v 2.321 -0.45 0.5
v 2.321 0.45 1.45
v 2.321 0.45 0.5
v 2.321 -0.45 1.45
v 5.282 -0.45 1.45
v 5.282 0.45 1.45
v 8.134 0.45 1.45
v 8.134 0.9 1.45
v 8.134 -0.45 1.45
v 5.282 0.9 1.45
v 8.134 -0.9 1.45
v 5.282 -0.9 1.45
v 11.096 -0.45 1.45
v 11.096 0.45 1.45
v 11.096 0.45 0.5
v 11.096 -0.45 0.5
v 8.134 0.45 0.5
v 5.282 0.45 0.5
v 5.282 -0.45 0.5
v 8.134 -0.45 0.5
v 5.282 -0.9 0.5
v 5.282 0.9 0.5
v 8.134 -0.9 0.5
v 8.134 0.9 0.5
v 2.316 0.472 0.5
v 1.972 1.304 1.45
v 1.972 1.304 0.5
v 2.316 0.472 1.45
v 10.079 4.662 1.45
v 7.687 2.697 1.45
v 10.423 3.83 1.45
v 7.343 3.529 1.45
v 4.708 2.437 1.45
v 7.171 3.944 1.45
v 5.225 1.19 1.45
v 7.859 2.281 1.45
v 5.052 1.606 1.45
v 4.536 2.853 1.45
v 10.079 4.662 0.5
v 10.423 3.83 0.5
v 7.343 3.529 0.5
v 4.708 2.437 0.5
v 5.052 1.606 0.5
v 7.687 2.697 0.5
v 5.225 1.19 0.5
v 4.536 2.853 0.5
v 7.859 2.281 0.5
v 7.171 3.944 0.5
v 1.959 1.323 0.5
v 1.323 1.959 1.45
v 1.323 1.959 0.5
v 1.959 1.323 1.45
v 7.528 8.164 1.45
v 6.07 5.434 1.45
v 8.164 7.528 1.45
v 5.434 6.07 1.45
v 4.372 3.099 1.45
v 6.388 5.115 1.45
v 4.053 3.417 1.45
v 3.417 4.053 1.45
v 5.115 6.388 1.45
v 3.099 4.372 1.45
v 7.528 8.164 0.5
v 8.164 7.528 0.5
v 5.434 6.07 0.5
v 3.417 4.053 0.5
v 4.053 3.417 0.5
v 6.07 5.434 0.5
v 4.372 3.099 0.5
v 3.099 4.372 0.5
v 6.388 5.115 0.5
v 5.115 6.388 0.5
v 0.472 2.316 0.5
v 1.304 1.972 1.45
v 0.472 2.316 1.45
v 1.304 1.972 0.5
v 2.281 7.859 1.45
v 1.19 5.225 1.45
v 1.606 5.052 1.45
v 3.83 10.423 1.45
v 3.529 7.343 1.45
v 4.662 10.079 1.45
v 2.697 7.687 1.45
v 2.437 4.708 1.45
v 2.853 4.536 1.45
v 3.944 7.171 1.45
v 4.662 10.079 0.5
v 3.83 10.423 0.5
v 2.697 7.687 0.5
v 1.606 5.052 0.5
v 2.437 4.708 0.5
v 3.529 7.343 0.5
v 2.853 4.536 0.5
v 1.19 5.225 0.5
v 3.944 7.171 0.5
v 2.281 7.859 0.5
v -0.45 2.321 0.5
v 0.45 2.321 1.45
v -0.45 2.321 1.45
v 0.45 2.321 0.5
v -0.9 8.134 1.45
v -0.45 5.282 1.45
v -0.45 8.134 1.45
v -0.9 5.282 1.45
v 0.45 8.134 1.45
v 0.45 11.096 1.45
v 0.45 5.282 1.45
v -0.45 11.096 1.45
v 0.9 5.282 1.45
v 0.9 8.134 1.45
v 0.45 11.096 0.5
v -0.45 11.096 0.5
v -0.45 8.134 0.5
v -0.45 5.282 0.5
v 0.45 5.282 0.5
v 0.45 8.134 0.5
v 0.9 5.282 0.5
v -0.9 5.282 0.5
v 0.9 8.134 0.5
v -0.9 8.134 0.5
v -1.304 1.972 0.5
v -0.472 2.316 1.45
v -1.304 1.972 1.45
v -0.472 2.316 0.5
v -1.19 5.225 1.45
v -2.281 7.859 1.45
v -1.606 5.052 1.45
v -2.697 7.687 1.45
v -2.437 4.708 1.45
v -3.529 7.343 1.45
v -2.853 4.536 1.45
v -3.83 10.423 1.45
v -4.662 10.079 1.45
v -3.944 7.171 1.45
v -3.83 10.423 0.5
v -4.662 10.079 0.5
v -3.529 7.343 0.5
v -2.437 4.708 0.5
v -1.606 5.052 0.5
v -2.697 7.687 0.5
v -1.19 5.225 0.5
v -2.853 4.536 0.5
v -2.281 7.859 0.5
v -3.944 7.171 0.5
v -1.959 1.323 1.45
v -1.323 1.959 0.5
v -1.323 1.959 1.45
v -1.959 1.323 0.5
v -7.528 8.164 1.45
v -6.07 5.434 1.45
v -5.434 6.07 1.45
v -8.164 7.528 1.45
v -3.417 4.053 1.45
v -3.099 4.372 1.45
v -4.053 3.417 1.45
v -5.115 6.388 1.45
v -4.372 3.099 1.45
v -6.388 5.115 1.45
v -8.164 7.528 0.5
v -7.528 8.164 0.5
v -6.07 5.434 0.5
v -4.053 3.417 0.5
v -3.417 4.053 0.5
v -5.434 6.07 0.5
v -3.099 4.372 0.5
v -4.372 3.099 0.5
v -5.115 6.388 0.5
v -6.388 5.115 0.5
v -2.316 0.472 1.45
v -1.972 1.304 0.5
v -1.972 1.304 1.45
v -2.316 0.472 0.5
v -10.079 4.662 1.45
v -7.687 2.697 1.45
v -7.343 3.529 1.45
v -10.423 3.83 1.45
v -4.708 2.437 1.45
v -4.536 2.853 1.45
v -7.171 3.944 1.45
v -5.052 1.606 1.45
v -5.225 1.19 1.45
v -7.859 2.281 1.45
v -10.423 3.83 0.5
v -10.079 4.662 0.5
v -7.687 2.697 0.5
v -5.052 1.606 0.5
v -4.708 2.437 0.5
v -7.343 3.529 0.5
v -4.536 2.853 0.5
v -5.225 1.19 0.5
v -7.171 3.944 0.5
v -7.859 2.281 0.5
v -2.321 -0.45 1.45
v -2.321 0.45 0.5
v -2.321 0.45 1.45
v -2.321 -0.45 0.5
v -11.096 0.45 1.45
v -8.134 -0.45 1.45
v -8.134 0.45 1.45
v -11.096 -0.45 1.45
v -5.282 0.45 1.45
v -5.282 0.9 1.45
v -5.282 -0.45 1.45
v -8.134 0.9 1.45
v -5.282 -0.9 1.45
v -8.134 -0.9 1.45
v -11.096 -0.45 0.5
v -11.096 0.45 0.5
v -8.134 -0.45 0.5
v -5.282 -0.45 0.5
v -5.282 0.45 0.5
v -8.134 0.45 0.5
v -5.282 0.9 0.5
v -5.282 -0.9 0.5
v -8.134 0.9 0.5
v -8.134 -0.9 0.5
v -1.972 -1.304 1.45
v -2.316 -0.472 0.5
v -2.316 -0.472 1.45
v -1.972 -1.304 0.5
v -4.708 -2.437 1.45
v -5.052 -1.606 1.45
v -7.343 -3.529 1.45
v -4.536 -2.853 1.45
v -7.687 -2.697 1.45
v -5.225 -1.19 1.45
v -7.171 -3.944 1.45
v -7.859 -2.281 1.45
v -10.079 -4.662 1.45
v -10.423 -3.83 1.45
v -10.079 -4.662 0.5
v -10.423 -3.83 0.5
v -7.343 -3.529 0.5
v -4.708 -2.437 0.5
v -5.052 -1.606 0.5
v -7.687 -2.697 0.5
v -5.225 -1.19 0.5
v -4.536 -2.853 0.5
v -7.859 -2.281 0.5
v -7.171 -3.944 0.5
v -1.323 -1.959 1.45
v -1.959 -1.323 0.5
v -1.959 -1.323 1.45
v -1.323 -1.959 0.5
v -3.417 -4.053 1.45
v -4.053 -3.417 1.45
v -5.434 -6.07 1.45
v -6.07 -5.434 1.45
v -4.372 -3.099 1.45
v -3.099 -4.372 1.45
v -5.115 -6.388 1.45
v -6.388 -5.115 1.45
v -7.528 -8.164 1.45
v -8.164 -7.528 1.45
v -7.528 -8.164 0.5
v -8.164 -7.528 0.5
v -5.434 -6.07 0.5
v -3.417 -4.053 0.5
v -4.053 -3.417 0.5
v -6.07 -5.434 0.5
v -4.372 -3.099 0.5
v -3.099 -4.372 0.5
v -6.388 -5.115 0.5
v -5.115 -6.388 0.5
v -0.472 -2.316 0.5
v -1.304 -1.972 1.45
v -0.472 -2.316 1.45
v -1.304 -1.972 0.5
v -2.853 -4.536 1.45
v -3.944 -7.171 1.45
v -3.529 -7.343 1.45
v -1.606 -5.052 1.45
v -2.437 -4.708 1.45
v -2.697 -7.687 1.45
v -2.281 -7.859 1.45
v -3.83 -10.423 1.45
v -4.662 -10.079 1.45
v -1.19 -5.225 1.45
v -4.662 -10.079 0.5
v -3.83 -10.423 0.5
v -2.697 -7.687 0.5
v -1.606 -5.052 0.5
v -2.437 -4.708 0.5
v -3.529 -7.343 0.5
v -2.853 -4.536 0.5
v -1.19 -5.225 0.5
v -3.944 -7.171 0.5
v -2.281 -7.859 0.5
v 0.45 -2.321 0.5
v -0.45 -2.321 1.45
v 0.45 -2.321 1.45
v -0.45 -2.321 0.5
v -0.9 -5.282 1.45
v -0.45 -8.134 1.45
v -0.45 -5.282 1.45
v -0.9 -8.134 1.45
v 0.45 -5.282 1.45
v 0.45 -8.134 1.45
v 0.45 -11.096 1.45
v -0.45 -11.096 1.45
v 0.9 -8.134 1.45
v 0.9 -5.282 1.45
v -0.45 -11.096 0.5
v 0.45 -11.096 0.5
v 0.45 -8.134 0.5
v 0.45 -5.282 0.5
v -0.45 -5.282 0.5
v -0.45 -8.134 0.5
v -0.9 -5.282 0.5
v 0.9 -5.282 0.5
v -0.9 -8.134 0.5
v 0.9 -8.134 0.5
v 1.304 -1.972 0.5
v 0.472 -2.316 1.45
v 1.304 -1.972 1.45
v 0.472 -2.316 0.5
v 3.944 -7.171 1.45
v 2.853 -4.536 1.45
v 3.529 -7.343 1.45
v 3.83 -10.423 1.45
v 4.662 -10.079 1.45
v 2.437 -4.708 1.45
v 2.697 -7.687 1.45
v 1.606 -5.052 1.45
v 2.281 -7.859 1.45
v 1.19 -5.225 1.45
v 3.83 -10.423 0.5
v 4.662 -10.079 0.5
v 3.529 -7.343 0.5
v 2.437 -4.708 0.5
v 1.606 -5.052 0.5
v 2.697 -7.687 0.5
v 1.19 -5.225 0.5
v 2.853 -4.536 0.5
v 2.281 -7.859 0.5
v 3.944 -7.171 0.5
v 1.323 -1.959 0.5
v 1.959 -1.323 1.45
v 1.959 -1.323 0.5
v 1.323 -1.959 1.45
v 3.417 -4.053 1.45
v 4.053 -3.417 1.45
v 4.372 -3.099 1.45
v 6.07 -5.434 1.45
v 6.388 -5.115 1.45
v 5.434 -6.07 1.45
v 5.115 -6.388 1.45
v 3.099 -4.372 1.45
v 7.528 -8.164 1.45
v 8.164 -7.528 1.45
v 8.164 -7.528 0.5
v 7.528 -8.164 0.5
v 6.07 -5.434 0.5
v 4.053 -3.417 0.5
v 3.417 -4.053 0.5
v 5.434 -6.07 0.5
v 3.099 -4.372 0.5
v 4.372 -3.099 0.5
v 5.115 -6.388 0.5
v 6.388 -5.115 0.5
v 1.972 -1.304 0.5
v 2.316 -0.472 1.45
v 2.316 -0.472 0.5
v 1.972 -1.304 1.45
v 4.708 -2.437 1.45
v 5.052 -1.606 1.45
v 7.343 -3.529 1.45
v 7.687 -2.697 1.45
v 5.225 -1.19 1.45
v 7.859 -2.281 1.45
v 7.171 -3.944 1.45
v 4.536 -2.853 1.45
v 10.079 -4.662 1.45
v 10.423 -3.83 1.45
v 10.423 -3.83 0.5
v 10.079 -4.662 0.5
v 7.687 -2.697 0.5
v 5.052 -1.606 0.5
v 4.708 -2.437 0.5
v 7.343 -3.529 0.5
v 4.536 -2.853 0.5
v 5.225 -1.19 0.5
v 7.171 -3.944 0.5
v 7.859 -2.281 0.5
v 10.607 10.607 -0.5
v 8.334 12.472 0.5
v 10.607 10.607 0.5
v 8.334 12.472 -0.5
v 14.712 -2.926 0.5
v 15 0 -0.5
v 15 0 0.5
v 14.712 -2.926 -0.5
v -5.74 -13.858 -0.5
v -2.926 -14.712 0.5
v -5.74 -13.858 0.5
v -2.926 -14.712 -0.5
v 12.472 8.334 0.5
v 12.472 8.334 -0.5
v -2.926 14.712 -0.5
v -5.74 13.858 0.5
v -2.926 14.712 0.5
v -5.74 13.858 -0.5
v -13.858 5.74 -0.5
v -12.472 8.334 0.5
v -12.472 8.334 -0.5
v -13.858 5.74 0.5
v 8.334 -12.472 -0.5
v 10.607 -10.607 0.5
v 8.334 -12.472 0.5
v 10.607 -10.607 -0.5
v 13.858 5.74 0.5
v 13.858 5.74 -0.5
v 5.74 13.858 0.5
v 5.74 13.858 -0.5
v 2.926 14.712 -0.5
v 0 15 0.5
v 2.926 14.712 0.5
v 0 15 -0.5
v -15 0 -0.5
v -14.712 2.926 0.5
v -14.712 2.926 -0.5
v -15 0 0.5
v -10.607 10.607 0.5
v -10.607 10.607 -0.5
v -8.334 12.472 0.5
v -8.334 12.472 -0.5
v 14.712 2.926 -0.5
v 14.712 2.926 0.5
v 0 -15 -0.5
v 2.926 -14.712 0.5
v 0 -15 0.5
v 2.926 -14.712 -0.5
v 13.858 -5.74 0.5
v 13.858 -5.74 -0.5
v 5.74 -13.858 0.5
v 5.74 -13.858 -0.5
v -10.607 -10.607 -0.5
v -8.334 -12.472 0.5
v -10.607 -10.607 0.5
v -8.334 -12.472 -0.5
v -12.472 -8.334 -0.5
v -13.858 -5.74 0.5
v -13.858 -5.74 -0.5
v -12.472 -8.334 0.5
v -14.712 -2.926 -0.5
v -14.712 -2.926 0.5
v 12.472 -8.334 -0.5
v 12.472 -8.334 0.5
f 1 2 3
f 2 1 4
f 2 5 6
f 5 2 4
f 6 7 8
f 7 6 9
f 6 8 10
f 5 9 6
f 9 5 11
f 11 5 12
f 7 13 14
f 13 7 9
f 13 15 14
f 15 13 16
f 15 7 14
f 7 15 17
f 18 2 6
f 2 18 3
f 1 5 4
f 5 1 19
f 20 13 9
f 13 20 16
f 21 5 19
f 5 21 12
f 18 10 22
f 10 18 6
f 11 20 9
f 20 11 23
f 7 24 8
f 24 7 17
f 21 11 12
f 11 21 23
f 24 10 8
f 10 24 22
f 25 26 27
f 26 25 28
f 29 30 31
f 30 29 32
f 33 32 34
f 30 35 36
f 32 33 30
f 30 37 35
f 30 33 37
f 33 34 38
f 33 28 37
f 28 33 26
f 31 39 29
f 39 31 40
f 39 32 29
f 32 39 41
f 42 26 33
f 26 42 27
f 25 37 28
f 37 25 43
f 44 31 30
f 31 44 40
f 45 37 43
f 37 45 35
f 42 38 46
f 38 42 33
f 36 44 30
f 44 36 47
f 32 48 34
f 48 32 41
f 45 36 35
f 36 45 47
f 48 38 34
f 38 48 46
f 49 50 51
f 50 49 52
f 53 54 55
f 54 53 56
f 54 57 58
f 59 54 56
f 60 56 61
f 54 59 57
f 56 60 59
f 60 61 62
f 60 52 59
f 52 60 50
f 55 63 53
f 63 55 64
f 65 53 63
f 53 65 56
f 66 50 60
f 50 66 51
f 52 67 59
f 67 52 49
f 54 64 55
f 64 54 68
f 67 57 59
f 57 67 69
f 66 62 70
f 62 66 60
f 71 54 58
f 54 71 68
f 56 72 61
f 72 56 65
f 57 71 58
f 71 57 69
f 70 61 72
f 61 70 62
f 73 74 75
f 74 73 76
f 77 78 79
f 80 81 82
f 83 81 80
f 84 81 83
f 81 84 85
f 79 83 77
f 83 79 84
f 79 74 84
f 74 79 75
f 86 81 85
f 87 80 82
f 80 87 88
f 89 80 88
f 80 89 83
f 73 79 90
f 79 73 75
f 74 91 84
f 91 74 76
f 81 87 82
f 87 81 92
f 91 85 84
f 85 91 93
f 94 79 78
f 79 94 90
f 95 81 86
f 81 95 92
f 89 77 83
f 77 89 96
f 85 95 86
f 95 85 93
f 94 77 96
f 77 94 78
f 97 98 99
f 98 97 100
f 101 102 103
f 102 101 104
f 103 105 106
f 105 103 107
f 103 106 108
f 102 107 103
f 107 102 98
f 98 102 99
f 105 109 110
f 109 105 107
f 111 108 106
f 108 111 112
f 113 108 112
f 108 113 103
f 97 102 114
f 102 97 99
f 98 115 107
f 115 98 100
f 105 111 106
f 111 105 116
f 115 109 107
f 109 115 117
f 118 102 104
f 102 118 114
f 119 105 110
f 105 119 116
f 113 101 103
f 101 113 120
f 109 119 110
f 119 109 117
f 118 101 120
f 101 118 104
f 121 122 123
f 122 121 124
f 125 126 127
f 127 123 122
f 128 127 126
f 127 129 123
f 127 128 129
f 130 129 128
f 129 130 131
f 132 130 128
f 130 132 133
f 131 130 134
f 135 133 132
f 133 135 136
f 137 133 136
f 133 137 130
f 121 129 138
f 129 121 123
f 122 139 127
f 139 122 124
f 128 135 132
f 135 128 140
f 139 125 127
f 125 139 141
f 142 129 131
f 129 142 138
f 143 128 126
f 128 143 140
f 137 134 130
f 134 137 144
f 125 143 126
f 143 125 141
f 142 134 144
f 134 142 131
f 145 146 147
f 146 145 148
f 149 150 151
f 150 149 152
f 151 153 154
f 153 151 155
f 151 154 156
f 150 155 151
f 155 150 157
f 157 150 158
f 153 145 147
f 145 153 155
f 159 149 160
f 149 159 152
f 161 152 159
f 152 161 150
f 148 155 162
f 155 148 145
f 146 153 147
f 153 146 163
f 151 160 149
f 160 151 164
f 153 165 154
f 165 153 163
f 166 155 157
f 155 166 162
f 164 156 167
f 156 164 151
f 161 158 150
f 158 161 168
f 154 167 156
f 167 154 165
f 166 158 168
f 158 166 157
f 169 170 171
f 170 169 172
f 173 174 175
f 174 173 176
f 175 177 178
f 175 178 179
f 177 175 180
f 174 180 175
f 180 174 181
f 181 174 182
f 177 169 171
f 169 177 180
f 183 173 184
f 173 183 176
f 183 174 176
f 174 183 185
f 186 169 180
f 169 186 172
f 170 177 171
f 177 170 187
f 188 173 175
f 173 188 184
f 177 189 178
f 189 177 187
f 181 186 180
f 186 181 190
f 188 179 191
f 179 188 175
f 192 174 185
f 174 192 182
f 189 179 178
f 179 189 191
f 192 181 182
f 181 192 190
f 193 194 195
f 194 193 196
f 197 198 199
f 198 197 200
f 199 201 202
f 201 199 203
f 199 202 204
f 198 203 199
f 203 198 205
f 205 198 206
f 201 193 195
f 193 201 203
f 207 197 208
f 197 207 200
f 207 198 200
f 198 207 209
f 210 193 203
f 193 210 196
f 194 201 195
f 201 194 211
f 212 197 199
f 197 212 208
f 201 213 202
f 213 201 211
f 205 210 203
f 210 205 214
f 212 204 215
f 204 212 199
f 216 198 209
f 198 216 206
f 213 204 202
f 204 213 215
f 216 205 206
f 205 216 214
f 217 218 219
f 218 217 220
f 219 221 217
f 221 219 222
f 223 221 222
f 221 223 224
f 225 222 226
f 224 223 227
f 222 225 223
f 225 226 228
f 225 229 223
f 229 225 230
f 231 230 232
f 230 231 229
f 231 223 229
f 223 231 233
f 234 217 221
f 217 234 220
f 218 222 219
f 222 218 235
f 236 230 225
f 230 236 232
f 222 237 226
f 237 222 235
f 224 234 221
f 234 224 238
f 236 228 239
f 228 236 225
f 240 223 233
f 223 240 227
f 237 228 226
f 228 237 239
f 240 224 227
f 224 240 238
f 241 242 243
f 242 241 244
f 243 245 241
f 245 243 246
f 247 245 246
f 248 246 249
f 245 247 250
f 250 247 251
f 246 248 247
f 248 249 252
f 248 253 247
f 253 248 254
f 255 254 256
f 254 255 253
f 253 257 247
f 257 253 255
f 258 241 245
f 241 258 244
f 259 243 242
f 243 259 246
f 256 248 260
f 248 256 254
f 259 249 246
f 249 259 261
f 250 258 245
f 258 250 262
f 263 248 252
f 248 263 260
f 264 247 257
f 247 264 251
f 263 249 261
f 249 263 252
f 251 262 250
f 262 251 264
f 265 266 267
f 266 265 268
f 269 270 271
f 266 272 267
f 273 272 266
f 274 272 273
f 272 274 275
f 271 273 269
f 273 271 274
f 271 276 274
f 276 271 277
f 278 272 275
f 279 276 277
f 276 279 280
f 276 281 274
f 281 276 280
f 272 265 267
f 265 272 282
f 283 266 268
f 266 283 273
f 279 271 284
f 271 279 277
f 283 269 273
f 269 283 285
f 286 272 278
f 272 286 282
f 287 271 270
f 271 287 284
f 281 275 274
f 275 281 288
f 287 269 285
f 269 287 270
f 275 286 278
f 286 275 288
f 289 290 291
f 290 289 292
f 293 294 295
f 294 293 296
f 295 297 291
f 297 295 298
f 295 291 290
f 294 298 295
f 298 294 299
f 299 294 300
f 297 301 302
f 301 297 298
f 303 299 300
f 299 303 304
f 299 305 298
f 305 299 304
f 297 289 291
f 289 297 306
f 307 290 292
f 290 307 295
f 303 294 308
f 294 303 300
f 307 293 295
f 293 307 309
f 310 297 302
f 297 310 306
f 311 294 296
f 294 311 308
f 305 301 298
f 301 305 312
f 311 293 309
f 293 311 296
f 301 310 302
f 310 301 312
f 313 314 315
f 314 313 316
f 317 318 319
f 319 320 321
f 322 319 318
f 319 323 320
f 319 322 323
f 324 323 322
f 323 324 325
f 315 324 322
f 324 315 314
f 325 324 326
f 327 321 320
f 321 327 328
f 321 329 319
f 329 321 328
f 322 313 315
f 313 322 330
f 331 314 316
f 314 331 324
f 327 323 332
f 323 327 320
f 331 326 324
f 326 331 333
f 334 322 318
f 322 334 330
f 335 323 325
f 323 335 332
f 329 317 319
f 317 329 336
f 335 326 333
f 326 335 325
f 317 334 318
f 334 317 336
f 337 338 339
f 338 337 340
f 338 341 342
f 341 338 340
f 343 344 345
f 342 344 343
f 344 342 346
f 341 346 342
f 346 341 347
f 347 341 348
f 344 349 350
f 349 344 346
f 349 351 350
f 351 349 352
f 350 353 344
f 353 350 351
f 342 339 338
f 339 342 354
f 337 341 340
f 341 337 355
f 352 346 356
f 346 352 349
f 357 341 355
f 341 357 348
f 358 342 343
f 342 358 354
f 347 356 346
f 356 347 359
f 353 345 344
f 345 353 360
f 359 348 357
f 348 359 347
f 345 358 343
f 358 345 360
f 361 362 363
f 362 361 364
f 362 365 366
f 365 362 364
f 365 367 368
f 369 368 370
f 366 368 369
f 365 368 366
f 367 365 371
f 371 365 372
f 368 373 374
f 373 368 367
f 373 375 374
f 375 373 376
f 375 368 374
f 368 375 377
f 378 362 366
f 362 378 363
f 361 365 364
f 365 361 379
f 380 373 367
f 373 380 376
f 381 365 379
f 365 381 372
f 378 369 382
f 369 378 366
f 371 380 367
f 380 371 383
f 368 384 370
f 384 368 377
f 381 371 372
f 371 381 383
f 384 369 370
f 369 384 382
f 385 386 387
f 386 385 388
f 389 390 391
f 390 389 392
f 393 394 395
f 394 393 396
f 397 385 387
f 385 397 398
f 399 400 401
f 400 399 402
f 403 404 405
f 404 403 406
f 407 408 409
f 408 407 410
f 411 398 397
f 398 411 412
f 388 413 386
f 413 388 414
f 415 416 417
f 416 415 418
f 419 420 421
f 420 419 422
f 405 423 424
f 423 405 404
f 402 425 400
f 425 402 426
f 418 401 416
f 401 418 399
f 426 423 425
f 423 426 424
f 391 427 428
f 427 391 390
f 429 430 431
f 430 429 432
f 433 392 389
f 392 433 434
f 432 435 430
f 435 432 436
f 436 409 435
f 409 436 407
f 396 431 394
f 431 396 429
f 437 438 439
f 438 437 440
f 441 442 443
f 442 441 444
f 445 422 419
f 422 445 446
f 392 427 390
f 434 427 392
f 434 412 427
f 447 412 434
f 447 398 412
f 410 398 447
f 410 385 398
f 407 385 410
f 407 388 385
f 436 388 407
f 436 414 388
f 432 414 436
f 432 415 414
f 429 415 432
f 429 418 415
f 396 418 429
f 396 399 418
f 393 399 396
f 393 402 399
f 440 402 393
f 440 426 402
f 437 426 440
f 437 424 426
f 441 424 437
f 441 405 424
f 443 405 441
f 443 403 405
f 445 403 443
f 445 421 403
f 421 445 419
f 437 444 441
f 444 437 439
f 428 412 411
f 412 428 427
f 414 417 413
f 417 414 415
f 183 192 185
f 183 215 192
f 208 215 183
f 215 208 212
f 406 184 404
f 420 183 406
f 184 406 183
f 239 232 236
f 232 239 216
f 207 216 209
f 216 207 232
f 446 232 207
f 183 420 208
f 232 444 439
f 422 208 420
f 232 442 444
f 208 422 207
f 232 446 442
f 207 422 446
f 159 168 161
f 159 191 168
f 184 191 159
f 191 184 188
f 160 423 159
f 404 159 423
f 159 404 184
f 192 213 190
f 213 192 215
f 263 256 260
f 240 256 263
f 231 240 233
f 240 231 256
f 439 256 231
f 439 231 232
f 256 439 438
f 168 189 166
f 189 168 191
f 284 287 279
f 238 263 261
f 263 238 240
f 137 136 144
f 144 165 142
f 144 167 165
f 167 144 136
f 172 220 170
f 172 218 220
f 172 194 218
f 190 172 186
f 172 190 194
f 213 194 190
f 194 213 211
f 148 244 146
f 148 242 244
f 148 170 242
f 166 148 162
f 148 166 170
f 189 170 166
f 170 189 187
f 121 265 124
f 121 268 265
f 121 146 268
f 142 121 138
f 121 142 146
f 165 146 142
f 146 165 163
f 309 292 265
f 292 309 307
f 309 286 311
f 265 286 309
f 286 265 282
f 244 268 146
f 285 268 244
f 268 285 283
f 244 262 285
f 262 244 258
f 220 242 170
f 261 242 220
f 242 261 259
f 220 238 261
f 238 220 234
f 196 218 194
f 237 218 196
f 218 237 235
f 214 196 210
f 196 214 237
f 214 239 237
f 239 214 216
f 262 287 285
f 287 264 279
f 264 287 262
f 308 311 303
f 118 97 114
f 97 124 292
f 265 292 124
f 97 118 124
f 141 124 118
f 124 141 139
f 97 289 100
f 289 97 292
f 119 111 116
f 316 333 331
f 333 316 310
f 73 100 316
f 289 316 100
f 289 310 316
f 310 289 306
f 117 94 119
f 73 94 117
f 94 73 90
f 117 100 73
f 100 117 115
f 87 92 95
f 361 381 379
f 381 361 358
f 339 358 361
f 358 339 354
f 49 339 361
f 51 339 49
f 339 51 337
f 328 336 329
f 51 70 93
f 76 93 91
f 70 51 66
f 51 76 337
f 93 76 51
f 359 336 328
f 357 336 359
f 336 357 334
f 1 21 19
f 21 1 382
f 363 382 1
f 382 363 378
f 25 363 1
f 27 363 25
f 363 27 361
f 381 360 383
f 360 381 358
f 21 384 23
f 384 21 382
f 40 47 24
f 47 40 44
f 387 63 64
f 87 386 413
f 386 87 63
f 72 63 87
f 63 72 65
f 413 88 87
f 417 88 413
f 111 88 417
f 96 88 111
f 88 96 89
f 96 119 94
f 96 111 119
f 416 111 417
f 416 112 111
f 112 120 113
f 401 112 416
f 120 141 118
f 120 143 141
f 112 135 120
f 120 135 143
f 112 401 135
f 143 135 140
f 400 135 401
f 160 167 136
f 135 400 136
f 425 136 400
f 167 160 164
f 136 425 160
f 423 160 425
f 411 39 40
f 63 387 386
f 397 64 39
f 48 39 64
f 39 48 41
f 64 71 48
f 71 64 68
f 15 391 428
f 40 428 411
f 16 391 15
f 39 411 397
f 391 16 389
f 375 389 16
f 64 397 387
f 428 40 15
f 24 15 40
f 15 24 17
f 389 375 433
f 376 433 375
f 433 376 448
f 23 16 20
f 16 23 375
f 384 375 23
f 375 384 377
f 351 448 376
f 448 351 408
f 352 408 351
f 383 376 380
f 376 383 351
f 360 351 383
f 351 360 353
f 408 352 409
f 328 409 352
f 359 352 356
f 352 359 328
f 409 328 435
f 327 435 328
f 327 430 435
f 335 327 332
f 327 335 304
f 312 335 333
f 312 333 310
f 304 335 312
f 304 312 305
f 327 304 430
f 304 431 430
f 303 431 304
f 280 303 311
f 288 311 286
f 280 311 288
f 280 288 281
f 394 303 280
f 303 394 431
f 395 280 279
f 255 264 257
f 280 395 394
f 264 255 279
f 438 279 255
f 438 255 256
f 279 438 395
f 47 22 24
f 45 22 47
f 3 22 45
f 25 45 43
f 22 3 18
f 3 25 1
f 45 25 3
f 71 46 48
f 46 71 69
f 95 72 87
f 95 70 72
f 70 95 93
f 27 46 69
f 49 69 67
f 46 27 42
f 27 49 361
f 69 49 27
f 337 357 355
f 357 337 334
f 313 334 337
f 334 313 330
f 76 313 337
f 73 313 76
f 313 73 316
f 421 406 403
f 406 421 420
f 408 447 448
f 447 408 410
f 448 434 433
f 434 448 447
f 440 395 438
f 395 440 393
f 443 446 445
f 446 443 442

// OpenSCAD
$fn=32;
 union() {
     cylinder(r=15.0, h=1.0, center=true);
     rotate(a=[0.0, 0.0, 0.0]) {
         translate([6.7082039324993685, 0.0, 0.95]) {
             union() {
                 cube([8.774999999999999, 0.9, 1.0], center=true);
                 cube([2.8518749999999997, 1.8, 1.0], center=true);
            }

        }

    }

     rotate(a=[0.0, 0.0, 22.5]) {
         translate([6.7082039324993685, 0.0, 0.95]) {
             union() {
                 cube([8.774999999999999, 0.9, 1.0], center=true);
                 cube([2.8518749999999997, 1.8, 1.0], center=true);
            }

        }

    }

     rotate(a=[0.0, 0.0, 45.0]) {
         translate([6.7082039324993685, 0.0, 0.95]) {
             union() {
                 cube([8.774999999999999, 0.9, 1.0], center=true);
                 cube([2.8518749999999997, 1.8, 1.0], center=true);
            }

        }

    }

     rotate(a=[0.0, 0.0, 67.5]) {
         translate([6.7082039324993685, 0.0, 0.95]) {
             union() {
                 cube([8.774999999999999, 0.9, 1.0], center=true);
                 cube([2.8518749999999997, 1.8, 1.0], center=true);
            }

        }

    }

     rotate(a=[0.0, 0.0, 90.0]) {
         translate([6.7082039324993685, 0.0, 0.95]) {
             union() {
                 cube([8.774999999999999, 0.9, 1.0], center=true);
                 cube([2.8518749999999997, 1.8, 1.0], center=true);
            }

        }

    }

     rotate(a=[0.0, 0.0, 112.5]) {
         translate([6.7082039324993685, 0.0, 0.95]) {
             union() {
                 cube([8.774999999999999, 0.9, 1.0], center=true);
                 cube([2.8518749999999997, 1.8, 1.0], center=true);
            }

        }

    }

     rotate(a=[0.0, 0.0, 135.0]) {
         translate([6.7082039324993685, 0.0, 0.95]) {
             union() {
                 cube([8.774999999999999, 0.9, 1.0], center=true);
                 cube([2.8518749999999997, 1.8, 1.0], center=true);
            }

        }

    }

     rotate(a=[0.0, 0.0, 157.5]) {
         translate([6.7082039324993685, 0.0, 0.95]) {
             union() {
                 cube([8.774999999999999, 0.9, 1.0], center=true);
                 cube([2.8518749999999997, 1.8, 1.0], center=true);
            }

        }

    }

     rotate(a=[0.0, 0.0, 180.0]) {
         translate([6.7082039324993685, 0.0, 0.95]) {
             union() {
                 cube([8.774999999999999, 0.9, 1.0], center=true);
                 cube([2.8518749999999997, 1.8, 1.0], center=true);
            }

        }

    }

     rotate(a=[0.0, 0.0, 202.5]) {
         translate([6.7082039324993685, 0.0, 0.95]) {
             union() {
                 cube([8.774999999999999, 0.9, 1.0], center=true);
                 cube([2.8518749999999997, 1.8, 1.0], center=true);
            }

        }

    }

     rotate(a=[0.0, 0.0, 225.0]) {
         translate([6.7082039324993685, 0.0, 0.95]) {
             union() {
                 cube([8.774999999999999, 0.9, 1.0], center=true);
                 cube([2.8518749999999997, 1.8, 1.0], center=true);
            }

        }

    }

     rotate(a=[0.0, 0.0, 247.5]) {
         translate([6.7082039324993685, 0.0, 0.95]) {
             union() {
                 cube([8.774999999999999, 0.9, 1.0], center=true);
                 cube([2.8518749999999997, 1.8, 1.0], center=true);
            }

        }

    }

     rotate(a=[0.0, 0.0, 270.0]) {
         translate([6.7082039324993685, 0.0, 0.95]) {
             union() {
                 cube([8.774999999999999, 0.9, 1.0], center=true);
                 cube([2.8518749999999997, 1.8, 1.0], center=true);
            }

        }

    }

     rotate(a=[0.0, 0.0, 292.5]) {
         translate([6.7082039324993685, 0.0, 0.95]) {
             union() {
                 cube([8.774999999999999, 0.9, 1.0], center=true);
                 cube([2.8518749999999997, 1.8, 1.0], center=true);
            }

        }

    }

     rotate(a=[0.0, 0.0, 315.0]) {
         translate([6.7082039324993685, 0.0, 0.95]) {
             union() {
                 cube([8.774999999999999, 0.9, 1.0], center=true);
                 cube([2.8518749999999997, 1.8, 1.0], center=true);
            }

        }

    }

     rotate(a=[0.0, 0.0, 337.5]) {
         translate([6.7082039324993685, 0.0, 0.95]) {
             union() {
                 cube([8.774999999999999, 0.9, 1.0], center=true);
                 cube([2.8518749999999997, 1.8, 1.0], center=true);
            }

        }

    }

}
